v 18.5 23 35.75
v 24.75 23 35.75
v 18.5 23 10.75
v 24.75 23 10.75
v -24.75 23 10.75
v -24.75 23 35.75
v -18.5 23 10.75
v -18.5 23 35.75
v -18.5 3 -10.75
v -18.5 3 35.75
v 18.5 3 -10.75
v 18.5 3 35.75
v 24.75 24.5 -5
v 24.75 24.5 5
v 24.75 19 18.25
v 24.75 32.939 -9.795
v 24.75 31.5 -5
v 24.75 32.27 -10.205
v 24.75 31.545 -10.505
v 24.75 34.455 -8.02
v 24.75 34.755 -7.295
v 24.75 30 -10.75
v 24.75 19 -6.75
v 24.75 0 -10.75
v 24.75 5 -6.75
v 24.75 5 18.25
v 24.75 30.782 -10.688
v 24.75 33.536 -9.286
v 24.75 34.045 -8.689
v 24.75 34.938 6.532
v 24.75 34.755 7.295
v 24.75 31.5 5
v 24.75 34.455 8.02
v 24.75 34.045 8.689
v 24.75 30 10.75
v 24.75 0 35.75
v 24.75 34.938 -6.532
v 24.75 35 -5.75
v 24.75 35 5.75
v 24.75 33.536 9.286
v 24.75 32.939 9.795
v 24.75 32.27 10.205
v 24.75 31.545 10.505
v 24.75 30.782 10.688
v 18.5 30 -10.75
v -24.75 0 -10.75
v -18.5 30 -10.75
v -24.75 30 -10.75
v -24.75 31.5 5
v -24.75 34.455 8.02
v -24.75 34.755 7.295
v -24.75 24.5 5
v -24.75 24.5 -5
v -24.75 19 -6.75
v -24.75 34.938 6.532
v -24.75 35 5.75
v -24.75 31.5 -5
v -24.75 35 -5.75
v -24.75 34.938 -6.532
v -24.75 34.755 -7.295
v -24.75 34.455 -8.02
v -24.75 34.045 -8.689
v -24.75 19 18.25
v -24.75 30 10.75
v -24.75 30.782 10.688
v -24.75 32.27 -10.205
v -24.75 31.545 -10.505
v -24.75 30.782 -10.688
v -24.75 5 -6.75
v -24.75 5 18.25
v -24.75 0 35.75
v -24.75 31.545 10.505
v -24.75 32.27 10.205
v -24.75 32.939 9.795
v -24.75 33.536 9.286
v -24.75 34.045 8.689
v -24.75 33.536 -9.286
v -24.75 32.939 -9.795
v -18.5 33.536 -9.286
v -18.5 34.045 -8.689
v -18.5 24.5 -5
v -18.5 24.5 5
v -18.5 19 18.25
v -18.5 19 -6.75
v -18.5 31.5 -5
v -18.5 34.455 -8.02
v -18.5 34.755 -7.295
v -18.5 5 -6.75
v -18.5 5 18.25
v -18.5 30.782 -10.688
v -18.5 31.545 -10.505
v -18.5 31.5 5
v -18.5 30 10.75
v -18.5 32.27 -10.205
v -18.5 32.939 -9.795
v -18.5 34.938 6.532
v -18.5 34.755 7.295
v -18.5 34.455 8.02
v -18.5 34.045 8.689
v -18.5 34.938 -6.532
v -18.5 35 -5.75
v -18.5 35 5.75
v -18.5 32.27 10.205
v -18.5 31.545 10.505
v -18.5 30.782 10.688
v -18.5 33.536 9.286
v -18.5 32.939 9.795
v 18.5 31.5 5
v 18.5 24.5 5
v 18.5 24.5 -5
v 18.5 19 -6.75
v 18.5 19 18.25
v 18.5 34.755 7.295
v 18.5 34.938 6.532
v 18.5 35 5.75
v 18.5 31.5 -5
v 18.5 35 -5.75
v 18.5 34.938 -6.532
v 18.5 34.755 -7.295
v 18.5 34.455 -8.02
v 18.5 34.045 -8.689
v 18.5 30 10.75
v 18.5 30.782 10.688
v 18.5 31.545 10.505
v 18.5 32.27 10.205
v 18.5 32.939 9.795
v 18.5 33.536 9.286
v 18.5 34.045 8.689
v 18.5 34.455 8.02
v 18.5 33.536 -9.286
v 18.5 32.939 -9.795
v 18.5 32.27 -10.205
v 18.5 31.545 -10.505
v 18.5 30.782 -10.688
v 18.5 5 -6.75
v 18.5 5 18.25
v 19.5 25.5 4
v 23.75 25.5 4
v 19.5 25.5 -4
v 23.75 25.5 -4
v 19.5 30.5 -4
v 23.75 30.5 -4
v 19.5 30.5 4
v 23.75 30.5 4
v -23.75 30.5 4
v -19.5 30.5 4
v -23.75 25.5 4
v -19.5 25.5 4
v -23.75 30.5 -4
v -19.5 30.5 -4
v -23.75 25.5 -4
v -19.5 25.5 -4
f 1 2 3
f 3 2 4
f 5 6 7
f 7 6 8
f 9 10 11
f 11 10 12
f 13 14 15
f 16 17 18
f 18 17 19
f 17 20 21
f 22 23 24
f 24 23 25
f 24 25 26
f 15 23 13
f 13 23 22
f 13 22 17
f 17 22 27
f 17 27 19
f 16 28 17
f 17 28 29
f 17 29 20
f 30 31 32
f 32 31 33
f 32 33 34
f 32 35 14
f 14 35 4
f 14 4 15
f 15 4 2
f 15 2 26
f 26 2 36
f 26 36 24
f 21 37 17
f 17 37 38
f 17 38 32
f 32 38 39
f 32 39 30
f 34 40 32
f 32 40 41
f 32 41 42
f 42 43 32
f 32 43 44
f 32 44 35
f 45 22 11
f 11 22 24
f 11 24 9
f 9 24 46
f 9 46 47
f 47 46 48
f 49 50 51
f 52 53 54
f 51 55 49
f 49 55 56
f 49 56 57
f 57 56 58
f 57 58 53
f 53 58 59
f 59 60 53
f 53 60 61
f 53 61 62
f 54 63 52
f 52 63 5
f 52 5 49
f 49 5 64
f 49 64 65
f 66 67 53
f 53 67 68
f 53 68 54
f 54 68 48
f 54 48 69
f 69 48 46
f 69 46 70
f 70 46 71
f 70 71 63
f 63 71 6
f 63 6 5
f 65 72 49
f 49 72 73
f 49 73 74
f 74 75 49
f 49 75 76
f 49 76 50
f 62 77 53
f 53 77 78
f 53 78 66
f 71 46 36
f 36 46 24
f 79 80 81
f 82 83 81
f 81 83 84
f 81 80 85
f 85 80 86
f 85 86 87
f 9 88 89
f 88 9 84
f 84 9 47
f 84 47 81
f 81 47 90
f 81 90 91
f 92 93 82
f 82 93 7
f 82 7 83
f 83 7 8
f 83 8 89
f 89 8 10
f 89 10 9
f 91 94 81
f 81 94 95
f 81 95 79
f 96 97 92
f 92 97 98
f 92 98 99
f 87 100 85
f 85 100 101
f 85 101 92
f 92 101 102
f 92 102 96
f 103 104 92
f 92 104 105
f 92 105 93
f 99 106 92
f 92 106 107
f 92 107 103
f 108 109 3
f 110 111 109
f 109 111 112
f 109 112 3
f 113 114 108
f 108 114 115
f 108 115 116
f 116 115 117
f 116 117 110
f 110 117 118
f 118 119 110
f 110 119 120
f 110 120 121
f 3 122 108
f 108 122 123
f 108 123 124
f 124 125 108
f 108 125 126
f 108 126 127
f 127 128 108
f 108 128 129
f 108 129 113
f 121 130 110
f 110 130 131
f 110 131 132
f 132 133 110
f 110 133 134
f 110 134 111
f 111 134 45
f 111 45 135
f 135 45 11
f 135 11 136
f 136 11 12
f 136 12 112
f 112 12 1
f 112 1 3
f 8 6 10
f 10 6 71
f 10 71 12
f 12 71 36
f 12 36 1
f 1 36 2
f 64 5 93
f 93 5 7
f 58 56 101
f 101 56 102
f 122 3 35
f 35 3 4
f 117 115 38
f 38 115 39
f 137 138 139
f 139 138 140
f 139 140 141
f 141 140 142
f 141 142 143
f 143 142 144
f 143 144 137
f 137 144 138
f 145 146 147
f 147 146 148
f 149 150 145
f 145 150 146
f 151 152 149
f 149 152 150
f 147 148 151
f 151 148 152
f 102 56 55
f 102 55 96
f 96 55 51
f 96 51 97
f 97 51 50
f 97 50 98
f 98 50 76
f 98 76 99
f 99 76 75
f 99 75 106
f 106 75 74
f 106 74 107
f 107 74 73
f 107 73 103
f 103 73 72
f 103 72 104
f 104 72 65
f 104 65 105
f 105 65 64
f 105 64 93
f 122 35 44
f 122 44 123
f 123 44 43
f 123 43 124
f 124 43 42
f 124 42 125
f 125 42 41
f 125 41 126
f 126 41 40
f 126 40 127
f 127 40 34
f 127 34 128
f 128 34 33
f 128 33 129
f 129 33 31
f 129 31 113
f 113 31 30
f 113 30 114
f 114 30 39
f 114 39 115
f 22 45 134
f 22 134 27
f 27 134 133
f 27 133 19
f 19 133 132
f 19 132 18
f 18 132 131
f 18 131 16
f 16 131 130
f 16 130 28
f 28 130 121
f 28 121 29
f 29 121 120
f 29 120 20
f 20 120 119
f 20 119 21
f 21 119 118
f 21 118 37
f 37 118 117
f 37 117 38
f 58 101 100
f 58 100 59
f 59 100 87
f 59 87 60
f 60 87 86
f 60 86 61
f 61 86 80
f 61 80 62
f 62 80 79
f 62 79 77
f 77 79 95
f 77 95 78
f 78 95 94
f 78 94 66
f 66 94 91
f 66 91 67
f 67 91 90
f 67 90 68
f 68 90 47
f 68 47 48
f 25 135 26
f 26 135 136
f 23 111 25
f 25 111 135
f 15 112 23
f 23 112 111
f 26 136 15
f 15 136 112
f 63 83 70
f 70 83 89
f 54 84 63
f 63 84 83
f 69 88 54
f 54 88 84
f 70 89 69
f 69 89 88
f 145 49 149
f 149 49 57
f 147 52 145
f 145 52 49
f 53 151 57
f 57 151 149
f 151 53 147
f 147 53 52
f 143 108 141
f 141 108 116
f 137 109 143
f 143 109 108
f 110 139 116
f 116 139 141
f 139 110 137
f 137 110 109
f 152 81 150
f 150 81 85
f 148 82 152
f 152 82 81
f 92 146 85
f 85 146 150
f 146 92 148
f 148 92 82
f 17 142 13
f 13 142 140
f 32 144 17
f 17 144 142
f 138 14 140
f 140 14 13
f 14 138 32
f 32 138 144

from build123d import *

# Parameters (mm, degrees)
SKETCH_1_W          = 49.5
SKETCH_1_H          = 21.5
EXTRUDE_1_DEPTH     = 3
SKETCH_4_W          = 6.25
SKETCH_4_H          = 21.5
EXTRUDE_2_DEPTH     = 20
EXTRUDE_3_DEPTH     = 25
SKETCH_7_W          = 6.25
SKETCH_7_H          = 21.5
EXTRUDE_4_DEPTH     = 12
SKETCH_8_W          = 8
SKETCH_8_H          = 5
CUT_EXTRUDE_1_DEPTH = 50.5
FILLET_1_R          = 5
FILLET_2_R          = 5
SKETCH_9_W          = 25
SKETCH_9_H          = 14
CUT_EXTRUDE_2_DEPTH = 50.5
CHAMFER_1_SIZE      = 1


with BuildPart() as part:
    # 草图1 → 凸台-拉伸1 (new body)
    with BuildSketch(Plane(origin=(0, 0, 0), x_dir=(1, 0, 0), z_dir=(0, 1, 0))):
        Rectangle(SKETCH_1_W, SKETCH_1_H)
    extrude(amount=EXTRUDE_1_DEPTH)

    # 草图4 → 凸台-拉伸2 (add)
    with BuildSketch(Plane(origin=(0, 3, 0), x_dir=(1, 0, 0), z_dir=(0, 1, 0))):
        with Locations((-21.625, 0)):
            Rectangle(SKETCH_4_W, SKETCH_4_H)
        with Locations((21.625, 0)):
            Rectangle(SKETCH_4_W, SKETCH_4_H)
    extrude(amount=EXTRUDE_2_DEPTH)

    # 草图6 → 凸台-拉伸3 (add)
    with BuildSketch(Plane.XY.offset(10.75)):
        Polygon((-24.75, 0), (24.75, 0), (24.75, 23), (18.5, 23), (18.5, 3), (-18.5, 3), (-18.5, 23), (-24.75, 23), align=None)
    extrude(amount=EXTRUDE_3_DEPTH)

    # 草图7 → 凸台-拉伸4 (add)
    with BuildSketch(Plane(origin=(0, 23, 0), x_dir=(1, 0, 0), z_dir=(0, 1, 0))):
        with Locations((-21.625, 0)):
            Rectangle(SKETCH_7_W, SKETCH_7_H)
        with Locations((21.625, 0)):
            Rectangle(SKETCH_7_W, SKETCH_7_H)
    extrude(amount=EXTRUDE_4_DEPTH)

    # 草图8 → 切除-拉伸1 (cut, through all)
    with BuildSketch(Plane(origin=(24.75, 0, 0), x_dir=(0, 0, -1), z_dir=(1, 0, 0))):
        with Locations((0, 28)):
            Rectangle(SKETCH_8_W, SKETCH_8_H)
    extrude(amount=-CUT_EXTRUDE_1_DEPTH, mode=Mode.SUBTRACT)

    # 圆角1
    fillet_1_edges = [part.edges().sort_by_distance(p)[0] for p in [
        (-21.625, 35, 10.75),
        (21.625, 35, 10.75),
    ]]
    fillet(fillet_1_edges, radius=FILLET_1_R)

    # 圆角2
    fillet_2_edges = [part.edges().sort_by_distance(p)[0] for p in [
        (-21.625, 35, -10.75),
        (21.625, 35, -10.75),
    ]]
    fillet(fillet_2_edges, radius=FILLET_2_R)

    # 草图9 → 切除-拉伸2 (cut, through all)
    with BuildSketch(Plane(origin=(24.75, 0, 0), x_dir=(0, 0, -1), z_dir=(1, 0, 0))):
        with Locations((-5.75, 12)):
            Rectangle(SKETCH_9_W, SKETCH_9_H)
    extrude(amount=-CUT_EXTRUDE_2_DEPTH, mode=Mode.SUBTRACT)

    # 倒角1
    chamfer_1_edges = [part.edges().sort_by_distance(p)[0] for p in [
        (18.5, 25.5, 0),
        (18.5, 28, -4),
        (18.5, 30.5, 0),
        (18.5, 28, 4),
        (-18.5, 28, 4),
        (-24.75, 28, 4),
        (-18.5, 30.5, 0),
        (-24.75, 30.5, 0),
        (-18.5, 28, -4),
        (-24.75, 28, -4),
        (-18.5, 25.5, 0),
        (-24.75, 25.5, 0),
        (24.75, 28, 4),
        (24.75, 25.5, 0),
        (24.75, 28, -4),
        (24.75, 30.5, 0),
    ]]
    chamfer(chamfer_1_edges, length=CHAMFER_1_SIZE)


solid = part.part
